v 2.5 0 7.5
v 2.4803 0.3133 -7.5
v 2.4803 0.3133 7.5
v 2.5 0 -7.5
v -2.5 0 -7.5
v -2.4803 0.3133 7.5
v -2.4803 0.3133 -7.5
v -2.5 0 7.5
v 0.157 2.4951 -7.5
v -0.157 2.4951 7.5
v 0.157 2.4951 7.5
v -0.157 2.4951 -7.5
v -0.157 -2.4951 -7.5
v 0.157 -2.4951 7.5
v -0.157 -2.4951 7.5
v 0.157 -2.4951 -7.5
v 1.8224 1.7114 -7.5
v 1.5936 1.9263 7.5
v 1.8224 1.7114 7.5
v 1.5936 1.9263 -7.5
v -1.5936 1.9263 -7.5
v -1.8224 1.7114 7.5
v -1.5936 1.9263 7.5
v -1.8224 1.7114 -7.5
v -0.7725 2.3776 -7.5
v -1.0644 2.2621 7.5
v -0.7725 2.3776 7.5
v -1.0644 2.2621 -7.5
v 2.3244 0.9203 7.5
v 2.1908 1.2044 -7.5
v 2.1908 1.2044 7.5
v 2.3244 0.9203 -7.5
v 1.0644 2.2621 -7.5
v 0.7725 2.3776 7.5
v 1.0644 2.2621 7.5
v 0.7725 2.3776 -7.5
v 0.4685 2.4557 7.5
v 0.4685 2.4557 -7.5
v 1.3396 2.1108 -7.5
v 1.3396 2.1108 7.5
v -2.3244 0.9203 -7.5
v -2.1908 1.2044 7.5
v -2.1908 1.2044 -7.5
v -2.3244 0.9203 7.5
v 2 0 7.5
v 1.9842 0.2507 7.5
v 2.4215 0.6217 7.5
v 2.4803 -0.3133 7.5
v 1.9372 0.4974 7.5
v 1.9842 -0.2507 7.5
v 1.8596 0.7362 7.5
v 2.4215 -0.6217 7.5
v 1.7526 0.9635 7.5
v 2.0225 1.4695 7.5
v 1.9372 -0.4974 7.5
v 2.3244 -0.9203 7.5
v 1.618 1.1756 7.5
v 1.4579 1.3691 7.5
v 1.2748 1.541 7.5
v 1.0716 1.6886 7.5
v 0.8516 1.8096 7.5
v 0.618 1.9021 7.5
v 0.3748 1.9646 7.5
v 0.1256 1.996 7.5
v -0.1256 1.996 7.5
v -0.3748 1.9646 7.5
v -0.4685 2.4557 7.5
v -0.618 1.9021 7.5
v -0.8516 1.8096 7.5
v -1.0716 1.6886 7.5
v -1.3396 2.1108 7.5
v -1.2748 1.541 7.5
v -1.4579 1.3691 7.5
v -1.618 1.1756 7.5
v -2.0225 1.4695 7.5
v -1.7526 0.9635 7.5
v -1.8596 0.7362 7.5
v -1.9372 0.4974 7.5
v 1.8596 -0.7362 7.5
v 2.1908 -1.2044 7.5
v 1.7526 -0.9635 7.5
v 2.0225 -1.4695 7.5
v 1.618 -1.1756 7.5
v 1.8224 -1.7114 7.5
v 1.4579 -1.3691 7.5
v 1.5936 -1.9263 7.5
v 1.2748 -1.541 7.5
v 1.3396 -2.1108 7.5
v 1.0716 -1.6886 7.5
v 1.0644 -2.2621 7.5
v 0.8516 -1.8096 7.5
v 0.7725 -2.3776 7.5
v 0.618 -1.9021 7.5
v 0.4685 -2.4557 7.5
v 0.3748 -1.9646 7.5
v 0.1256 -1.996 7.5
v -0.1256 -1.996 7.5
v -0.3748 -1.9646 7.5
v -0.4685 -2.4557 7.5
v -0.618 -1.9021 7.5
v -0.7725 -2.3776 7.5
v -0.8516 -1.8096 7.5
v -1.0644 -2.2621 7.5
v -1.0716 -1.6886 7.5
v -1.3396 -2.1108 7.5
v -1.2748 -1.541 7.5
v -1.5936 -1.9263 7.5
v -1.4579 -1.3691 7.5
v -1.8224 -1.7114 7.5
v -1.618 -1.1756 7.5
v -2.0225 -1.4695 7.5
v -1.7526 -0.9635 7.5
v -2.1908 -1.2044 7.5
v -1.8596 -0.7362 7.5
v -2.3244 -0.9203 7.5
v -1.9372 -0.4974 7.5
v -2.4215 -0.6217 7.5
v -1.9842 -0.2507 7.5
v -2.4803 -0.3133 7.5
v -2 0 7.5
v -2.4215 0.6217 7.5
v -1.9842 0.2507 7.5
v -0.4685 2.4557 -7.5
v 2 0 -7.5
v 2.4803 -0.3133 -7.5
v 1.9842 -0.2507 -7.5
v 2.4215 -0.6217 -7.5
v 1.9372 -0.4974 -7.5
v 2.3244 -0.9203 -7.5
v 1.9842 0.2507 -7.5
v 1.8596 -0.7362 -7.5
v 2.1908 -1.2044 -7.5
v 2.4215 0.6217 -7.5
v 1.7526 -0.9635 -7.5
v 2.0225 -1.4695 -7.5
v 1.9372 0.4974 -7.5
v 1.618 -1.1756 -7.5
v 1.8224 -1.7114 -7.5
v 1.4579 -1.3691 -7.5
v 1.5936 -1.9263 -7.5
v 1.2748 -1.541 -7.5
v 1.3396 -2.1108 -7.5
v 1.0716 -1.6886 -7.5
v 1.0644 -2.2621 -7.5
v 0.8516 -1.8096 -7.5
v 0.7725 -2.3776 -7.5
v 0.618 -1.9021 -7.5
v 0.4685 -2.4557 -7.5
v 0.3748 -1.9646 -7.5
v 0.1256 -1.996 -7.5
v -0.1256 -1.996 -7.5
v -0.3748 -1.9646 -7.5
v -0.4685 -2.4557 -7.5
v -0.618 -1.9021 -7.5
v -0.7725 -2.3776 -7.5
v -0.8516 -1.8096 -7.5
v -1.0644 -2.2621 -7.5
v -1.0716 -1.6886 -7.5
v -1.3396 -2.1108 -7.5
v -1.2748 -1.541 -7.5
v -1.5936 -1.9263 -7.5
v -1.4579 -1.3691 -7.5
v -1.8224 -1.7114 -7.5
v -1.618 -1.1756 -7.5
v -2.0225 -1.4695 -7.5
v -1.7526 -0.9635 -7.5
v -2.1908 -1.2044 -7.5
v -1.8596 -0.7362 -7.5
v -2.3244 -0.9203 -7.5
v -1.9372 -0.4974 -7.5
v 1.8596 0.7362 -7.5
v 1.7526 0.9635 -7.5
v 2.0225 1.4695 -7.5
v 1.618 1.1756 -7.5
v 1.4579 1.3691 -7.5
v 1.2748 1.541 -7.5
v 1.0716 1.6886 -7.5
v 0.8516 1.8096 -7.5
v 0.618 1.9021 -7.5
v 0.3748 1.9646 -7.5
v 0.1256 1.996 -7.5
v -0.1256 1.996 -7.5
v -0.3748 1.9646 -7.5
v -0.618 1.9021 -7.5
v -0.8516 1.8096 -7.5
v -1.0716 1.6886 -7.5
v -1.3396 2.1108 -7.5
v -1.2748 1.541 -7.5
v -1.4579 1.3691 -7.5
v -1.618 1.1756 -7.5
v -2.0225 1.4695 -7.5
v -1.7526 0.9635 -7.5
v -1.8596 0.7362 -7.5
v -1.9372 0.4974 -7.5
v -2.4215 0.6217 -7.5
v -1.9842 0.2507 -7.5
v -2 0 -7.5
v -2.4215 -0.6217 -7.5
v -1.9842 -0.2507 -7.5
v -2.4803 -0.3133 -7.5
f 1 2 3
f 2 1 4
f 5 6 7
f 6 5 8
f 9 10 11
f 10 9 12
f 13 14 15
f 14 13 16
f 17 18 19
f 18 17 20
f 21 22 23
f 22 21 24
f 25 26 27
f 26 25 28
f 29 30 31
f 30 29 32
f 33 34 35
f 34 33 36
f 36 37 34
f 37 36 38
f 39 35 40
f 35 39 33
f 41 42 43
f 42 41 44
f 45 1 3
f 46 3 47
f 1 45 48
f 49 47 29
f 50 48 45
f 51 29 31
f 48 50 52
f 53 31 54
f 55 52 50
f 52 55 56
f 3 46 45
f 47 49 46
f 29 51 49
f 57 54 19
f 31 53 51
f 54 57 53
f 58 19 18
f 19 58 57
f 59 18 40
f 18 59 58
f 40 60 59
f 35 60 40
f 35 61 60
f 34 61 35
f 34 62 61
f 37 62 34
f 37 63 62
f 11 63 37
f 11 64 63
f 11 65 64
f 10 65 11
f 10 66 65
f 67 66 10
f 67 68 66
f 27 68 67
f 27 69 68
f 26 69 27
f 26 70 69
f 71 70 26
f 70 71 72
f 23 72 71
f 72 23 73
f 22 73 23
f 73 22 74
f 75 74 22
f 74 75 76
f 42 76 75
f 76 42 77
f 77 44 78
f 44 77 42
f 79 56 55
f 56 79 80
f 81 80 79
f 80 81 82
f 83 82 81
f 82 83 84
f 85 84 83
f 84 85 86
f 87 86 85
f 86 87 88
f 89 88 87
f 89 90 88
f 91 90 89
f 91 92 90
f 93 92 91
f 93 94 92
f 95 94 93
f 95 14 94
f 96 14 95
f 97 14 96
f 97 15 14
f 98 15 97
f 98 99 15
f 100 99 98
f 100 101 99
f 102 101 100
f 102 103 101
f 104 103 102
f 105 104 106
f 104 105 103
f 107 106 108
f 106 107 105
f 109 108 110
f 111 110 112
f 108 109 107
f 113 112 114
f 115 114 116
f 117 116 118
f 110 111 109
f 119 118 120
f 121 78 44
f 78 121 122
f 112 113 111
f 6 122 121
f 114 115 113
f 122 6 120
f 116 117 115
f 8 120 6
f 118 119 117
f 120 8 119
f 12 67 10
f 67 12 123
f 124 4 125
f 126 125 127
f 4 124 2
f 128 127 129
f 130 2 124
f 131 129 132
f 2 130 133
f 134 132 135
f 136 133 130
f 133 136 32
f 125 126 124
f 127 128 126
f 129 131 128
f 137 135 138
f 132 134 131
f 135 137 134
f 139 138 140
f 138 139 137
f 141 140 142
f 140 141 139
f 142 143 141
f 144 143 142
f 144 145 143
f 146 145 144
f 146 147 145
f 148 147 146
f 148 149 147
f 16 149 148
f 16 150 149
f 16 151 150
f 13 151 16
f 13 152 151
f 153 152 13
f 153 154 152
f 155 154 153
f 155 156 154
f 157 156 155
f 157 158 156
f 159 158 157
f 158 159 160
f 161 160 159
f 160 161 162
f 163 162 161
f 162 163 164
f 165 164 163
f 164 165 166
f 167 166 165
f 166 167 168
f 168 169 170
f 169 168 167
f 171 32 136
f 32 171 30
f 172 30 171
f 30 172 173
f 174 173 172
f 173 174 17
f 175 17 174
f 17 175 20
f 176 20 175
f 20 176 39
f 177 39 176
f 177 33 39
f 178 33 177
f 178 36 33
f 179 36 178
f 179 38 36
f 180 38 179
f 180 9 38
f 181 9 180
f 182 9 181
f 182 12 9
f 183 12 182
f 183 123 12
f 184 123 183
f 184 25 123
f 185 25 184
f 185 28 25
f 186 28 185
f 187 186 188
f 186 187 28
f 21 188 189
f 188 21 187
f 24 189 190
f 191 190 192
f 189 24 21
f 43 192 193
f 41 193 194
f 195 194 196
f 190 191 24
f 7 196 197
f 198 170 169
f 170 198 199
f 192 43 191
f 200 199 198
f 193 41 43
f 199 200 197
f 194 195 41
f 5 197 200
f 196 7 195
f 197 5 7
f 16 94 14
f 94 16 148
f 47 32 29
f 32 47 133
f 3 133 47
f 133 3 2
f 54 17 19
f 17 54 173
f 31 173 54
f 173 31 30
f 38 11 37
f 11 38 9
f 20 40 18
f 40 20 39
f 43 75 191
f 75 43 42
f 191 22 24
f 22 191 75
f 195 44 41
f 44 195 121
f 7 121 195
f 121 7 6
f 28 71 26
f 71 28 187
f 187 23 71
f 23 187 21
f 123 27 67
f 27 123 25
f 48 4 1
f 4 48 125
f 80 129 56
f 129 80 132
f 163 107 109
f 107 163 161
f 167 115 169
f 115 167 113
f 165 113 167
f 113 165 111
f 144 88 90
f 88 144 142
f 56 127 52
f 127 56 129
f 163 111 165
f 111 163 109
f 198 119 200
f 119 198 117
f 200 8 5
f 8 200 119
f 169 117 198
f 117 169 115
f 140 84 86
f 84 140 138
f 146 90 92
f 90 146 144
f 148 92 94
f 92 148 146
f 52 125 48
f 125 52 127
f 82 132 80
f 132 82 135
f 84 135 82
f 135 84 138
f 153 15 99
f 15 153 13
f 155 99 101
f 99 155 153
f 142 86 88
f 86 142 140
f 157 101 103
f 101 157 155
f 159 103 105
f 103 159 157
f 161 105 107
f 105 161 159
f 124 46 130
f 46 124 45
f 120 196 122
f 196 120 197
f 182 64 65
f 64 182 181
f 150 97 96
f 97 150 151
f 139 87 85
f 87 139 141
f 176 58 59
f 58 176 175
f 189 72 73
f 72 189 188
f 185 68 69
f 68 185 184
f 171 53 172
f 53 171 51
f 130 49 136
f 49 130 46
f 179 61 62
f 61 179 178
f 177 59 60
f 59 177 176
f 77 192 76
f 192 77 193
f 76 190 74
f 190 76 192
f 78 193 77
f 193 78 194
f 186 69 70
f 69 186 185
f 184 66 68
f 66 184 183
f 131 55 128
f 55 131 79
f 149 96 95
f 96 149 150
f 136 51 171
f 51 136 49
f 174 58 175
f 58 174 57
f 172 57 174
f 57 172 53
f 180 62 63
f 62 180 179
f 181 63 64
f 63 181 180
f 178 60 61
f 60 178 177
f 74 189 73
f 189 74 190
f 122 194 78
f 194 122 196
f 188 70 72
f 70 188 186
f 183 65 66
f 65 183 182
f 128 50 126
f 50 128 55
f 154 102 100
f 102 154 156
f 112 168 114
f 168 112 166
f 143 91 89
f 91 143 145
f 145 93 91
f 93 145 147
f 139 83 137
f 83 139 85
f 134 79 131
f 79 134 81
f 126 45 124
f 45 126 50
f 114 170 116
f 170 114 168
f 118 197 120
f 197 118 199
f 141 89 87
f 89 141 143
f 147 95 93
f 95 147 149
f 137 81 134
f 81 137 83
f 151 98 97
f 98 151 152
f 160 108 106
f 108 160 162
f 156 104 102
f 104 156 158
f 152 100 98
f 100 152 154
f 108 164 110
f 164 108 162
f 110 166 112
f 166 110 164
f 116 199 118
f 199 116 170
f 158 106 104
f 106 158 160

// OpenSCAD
$fn = 50;


difference() {
	union() {
		translate(v = [0, 0, -7.5000000000]) {
			cylinder(h = 15, r = 2.5000000000);
		}
	}
	union() {
		translate(v = [0, 0, -100.0000000000]) {
			cylinder(h = 200, r = 2.0000000000);
		}
	}
}
